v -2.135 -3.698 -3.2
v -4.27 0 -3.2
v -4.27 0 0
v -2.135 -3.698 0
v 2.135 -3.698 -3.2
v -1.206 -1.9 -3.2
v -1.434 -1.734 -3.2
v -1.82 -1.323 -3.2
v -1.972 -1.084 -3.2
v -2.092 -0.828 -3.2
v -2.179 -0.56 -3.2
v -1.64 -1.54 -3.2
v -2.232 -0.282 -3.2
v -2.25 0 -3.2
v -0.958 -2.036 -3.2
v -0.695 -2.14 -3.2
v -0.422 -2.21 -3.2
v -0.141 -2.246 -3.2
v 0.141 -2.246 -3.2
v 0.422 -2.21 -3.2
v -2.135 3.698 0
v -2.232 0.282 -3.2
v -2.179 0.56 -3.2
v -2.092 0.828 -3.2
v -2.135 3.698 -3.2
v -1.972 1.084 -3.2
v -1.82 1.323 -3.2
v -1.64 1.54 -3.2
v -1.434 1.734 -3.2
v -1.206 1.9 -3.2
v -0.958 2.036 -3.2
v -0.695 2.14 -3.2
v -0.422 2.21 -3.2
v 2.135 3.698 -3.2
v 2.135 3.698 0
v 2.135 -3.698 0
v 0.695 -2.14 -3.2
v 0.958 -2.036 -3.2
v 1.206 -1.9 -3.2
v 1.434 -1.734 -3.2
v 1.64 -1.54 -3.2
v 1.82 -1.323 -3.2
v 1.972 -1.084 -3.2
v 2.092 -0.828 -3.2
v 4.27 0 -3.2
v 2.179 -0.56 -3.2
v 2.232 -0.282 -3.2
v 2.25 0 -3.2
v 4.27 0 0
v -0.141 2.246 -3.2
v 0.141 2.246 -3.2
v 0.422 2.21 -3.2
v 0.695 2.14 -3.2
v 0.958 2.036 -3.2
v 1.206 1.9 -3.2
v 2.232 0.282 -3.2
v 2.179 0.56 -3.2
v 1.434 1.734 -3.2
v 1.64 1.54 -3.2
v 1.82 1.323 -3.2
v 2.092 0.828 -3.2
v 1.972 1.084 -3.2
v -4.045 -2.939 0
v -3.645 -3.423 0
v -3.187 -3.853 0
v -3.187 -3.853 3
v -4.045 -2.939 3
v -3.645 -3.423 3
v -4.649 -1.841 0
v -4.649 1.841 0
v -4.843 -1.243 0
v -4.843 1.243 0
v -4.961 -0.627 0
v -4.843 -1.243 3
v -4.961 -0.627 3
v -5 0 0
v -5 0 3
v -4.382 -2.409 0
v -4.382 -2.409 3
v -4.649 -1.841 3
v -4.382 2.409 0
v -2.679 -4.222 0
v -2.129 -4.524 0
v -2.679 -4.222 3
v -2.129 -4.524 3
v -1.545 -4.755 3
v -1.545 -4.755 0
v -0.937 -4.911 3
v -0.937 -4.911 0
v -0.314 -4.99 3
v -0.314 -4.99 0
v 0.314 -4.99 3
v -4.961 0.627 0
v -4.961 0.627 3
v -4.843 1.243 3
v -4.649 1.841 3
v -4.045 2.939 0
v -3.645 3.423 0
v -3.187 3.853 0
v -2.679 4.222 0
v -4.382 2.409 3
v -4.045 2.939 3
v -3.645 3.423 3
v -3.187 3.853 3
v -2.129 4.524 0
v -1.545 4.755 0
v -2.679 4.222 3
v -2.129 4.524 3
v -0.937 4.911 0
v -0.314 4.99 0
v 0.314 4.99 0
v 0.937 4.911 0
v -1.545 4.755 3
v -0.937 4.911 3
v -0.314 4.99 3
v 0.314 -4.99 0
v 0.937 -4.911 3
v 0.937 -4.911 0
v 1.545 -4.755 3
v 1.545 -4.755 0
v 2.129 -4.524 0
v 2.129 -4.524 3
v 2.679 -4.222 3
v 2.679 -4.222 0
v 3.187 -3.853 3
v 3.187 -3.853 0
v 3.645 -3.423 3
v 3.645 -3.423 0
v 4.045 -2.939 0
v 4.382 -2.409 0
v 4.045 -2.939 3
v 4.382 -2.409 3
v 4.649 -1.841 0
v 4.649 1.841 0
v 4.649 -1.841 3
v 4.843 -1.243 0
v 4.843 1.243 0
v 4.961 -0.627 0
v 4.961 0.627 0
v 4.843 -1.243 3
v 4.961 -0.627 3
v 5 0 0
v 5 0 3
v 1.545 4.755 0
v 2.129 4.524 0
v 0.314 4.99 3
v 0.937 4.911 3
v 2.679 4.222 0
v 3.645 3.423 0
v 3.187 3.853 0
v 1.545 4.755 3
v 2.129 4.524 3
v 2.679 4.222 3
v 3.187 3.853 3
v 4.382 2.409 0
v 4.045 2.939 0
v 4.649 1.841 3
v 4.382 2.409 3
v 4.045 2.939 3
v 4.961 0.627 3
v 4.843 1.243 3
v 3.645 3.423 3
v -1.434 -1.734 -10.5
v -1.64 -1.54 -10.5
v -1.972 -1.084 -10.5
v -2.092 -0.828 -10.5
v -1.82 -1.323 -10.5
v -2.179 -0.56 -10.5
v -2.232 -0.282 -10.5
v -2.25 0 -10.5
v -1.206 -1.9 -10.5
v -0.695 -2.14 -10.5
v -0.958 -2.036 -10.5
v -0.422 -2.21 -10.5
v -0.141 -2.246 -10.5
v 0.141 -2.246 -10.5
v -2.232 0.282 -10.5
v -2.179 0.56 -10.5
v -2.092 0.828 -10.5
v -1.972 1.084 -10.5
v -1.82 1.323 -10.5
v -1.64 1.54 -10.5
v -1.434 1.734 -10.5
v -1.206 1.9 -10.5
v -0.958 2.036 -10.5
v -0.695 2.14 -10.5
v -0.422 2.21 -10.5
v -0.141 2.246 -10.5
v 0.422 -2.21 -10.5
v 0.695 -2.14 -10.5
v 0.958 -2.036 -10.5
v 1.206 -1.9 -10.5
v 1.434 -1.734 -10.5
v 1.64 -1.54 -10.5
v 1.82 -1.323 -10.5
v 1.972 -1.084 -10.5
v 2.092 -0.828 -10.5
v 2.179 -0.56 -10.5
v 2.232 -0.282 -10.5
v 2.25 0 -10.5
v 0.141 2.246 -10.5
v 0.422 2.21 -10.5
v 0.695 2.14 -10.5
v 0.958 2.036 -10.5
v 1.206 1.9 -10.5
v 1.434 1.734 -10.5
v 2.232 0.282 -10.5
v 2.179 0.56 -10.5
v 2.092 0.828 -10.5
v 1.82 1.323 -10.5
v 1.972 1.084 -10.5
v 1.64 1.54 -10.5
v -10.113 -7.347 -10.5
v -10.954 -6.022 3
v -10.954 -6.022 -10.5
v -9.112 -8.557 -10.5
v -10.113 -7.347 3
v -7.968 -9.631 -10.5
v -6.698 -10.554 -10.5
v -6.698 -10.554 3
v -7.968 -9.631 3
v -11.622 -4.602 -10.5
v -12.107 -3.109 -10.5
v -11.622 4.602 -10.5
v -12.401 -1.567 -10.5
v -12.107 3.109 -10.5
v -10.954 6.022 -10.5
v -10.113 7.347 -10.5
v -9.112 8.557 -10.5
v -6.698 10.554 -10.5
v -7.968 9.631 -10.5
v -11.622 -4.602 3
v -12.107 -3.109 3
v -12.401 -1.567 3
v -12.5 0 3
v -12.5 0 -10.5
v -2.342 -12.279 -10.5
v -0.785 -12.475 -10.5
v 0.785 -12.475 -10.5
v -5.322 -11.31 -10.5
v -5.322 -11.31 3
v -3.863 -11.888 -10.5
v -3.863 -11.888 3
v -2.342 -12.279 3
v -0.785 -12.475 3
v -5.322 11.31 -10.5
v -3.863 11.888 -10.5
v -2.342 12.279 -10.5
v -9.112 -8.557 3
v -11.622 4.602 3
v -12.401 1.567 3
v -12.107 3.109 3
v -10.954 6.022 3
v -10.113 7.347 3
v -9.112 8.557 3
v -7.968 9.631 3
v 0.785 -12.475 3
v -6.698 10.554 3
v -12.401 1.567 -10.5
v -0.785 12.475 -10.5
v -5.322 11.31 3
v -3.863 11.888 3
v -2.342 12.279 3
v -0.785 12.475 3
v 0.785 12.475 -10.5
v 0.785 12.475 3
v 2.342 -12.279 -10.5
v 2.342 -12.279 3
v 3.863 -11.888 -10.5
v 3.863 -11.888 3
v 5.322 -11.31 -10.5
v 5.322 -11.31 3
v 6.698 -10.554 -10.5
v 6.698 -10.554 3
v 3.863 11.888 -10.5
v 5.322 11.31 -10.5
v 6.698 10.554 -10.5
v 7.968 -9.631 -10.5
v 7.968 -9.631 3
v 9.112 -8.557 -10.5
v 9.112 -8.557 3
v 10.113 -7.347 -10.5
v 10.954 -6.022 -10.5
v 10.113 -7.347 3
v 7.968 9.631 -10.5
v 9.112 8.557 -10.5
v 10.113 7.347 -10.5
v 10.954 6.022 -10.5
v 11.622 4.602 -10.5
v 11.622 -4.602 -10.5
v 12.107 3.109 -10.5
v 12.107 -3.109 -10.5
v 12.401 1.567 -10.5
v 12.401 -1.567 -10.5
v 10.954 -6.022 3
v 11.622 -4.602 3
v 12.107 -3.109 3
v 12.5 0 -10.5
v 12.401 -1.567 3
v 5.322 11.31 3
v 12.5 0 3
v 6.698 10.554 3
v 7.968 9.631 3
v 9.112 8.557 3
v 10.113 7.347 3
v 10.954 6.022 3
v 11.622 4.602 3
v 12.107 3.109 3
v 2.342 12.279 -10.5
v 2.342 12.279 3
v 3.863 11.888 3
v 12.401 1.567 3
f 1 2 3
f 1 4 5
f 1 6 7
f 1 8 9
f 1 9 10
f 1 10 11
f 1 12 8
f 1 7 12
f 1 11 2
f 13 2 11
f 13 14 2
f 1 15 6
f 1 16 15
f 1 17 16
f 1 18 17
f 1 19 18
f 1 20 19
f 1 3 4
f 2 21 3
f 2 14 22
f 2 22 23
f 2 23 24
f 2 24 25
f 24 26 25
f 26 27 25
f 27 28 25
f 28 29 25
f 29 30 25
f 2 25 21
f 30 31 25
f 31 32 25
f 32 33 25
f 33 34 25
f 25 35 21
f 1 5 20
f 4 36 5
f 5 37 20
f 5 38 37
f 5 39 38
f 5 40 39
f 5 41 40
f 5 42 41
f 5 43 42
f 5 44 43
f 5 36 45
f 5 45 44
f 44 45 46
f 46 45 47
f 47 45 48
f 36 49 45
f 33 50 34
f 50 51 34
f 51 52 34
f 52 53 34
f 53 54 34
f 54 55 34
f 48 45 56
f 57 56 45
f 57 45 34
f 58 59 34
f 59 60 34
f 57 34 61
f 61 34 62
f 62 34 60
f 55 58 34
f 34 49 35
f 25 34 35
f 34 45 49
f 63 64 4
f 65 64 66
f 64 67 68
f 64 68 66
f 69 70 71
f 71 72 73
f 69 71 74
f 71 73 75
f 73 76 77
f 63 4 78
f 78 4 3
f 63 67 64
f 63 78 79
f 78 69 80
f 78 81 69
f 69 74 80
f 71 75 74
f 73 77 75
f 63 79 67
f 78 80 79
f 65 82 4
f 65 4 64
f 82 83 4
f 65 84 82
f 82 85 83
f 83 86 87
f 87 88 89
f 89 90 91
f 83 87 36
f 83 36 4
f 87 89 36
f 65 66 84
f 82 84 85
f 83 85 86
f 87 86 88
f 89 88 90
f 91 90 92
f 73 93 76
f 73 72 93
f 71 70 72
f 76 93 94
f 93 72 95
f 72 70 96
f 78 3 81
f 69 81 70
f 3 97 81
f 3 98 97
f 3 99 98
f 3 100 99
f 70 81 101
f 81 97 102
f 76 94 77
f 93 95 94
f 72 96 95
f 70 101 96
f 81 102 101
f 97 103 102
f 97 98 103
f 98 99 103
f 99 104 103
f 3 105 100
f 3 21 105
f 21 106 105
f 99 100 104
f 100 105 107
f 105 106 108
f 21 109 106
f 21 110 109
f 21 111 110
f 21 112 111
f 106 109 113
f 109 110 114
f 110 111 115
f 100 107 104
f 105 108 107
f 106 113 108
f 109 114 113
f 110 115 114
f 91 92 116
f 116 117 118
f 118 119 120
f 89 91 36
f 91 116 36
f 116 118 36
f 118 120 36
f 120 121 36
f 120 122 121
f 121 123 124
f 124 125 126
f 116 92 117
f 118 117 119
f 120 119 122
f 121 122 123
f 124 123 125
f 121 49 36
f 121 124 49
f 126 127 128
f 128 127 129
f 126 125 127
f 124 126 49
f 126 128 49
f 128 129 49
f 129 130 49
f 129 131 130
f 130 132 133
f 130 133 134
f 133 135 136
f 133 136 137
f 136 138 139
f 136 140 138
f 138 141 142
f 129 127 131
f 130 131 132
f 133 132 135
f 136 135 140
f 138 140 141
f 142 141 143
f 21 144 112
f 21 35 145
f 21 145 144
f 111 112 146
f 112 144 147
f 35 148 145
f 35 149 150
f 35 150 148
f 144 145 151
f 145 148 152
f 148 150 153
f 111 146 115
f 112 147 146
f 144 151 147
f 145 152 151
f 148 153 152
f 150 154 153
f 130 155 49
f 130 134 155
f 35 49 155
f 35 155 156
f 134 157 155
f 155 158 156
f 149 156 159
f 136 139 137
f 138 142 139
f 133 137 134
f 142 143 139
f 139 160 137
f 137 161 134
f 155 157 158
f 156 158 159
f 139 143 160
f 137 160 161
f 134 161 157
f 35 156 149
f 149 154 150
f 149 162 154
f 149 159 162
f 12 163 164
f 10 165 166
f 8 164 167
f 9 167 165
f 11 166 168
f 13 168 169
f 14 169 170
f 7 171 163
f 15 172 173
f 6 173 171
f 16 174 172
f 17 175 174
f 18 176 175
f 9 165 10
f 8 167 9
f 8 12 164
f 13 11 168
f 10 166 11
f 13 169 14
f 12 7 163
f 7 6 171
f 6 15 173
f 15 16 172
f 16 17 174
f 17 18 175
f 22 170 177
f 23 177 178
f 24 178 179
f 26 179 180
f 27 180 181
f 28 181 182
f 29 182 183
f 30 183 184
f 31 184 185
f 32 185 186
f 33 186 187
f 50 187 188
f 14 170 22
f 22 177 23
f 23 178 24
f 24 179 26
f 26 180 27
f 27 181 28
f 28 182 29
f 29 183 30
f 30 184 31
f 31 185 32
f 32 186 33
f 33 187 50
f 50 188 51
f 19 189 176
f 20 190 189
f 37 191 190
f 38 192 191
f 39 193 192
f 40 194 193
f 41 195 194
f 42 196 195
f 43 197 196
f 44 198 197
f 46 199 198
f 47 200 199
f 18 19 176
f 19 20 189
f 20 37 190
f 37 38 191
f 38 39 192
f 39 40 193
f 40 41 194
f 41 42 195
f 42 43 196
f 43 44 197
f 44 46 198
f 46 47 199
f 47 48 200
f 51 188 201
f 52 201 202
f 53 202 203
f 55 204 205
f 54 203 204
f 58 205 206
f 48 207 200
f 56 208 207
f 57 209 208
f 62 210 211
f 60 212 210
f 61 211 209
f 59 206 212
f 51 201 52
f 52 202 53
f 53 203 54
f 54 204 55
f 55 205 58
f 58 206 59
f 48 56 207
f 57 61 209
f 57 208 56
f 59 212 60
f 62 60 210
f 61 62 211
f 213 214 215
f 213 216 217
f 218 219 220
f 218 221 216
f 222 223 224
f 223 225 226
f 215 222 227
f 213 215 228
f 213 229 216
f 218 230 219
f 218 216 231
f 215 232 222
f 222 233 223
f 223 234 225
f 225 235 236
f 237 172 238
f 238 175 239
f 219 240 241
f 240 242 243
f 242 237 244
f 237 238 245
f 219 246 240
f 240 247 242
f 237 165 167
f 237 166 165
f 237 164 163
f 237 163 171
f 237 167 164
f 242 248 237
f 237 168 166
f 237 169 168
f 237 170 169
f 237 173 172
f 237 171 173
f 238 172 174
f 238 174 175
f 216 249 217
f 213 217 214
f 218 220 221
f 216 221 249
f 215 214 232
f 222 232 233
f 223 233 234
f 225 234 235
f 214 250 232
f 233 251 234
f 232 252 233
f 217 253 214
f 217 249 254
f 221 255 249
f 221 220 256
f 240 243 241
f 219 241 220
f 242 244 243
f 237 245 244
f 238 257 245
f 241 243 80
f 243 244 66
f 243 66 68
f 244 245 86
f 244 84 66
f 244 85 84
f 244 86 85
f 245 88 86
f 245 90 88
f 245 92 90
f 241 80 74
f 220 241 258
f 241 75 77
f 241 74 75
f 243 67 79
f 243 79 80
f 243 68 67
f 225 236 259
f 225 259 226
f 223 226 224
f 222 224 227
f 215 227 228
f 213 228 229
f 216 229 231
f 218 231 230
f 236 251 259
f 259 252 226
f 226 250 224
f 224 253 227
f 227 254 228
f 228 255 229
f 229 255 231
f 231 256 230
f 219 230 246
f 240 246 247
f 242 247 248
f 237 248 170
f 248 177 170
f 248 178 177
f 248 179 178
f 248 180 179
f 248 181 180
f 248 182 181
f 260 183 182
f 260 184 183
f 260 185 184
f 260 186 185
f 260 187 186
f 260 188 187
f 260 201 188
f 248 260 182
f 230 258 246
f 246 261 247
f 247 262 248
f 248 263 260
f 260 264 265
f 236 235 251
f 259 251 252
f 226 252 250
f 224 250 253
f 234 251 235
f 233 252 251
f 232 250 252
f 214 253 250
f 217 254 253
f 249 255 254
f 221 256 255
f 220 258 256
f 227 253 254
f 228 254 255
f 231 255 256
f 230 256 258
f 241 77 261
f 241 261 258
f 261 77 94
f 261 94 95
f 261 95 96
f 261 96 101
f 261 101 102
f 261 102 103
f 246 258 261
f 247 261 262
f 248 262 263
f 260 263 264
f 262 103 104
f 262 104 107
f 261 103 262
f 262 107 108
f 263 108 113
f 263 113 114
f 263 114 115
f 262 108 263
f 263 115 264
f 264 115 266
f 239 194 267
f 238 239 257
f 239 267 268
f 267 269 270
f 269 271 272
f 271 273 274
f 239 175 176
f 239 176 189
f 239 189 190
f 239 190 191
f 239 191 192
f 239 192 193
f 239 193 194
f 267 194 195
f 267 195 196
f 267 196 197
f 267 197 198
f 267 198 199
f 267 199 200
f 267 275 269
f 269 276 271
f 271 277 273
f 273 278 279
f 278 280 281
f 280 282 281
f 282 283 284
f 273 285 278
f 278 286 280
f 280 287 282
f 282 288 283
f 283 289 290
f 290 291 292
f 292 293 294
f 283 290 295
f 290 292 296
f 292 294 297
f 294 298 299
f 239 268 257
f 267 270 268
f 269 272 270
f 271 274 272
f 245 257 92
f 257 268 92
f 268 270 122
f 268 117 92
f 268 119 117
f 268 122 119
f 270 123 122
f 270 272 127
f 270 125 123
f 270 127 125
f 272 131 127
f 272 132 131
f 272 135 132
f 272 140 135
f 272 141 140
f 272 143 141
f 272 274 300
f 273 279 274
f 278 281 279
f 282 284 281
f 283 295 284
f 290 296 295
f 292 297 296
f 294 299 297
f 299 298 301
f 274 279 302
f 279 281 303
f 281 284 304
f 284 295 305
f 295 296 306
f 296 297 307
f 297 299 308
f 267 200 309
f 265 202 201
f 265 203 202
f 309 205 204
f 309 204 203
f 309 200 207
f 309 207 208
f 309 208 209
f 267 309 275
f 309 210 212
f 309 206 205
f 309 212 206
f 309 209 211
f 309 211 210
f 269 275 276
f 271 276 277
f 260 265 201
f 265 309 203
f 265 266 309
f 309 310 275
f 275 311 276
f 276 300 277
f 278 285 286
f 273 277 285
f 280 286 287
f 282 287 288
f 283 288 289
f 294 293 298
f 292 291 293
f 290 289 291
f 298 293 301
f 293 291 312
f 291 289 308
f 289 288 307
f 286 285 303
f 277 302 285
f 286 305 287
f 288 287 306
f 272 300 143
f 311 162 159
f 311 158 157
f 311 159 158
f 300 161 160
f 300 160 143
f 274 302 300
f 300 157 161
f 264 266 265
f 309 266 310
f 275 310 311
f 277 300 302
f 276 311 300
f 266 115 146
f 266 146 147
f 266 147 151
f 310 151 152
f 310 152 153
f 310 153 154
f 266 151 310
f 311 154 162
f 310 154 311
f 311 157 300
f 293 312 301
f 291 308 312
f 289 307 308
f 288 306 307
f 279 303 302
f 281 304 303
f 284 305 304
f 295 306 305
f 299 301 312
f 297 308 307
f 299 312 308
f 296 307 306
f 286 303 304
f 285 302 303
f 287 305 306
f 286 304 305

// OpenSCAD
$fn = 50;

difference() {
	union() {
		translate(v = [0, 0, -10.5]) {
			cylinder(h = 13.5, r = 12.5);
		}
	}
	union() {
		translate(v = [0, 0, 0]) {
			rotate(a = [0, 0, 0]) {
				difference() {
					union() {
						translate(v = [0, 0, -3.2]) {
							linear_extrude(height = 3.2) {
								polygon(points = [[4.2698, 0.0], [2.1349000000000005, 3.697755269078796], [-2.134899999999999, 3.6977552690787965], [-4.2698, 5.228996902999369e-16], [-2.134900000000002, -3.6977552690787956], [2.1348999999999974, -3.697755269078798]]);
							}
						}
					}
					union();
				}
			}
		}
		#cylinder(h = 3, r = 5.0);
		#translate(v = [0, 0, -100.0]) {
			cylinder(h = 200, r = 2.25);
		}
	}
}
